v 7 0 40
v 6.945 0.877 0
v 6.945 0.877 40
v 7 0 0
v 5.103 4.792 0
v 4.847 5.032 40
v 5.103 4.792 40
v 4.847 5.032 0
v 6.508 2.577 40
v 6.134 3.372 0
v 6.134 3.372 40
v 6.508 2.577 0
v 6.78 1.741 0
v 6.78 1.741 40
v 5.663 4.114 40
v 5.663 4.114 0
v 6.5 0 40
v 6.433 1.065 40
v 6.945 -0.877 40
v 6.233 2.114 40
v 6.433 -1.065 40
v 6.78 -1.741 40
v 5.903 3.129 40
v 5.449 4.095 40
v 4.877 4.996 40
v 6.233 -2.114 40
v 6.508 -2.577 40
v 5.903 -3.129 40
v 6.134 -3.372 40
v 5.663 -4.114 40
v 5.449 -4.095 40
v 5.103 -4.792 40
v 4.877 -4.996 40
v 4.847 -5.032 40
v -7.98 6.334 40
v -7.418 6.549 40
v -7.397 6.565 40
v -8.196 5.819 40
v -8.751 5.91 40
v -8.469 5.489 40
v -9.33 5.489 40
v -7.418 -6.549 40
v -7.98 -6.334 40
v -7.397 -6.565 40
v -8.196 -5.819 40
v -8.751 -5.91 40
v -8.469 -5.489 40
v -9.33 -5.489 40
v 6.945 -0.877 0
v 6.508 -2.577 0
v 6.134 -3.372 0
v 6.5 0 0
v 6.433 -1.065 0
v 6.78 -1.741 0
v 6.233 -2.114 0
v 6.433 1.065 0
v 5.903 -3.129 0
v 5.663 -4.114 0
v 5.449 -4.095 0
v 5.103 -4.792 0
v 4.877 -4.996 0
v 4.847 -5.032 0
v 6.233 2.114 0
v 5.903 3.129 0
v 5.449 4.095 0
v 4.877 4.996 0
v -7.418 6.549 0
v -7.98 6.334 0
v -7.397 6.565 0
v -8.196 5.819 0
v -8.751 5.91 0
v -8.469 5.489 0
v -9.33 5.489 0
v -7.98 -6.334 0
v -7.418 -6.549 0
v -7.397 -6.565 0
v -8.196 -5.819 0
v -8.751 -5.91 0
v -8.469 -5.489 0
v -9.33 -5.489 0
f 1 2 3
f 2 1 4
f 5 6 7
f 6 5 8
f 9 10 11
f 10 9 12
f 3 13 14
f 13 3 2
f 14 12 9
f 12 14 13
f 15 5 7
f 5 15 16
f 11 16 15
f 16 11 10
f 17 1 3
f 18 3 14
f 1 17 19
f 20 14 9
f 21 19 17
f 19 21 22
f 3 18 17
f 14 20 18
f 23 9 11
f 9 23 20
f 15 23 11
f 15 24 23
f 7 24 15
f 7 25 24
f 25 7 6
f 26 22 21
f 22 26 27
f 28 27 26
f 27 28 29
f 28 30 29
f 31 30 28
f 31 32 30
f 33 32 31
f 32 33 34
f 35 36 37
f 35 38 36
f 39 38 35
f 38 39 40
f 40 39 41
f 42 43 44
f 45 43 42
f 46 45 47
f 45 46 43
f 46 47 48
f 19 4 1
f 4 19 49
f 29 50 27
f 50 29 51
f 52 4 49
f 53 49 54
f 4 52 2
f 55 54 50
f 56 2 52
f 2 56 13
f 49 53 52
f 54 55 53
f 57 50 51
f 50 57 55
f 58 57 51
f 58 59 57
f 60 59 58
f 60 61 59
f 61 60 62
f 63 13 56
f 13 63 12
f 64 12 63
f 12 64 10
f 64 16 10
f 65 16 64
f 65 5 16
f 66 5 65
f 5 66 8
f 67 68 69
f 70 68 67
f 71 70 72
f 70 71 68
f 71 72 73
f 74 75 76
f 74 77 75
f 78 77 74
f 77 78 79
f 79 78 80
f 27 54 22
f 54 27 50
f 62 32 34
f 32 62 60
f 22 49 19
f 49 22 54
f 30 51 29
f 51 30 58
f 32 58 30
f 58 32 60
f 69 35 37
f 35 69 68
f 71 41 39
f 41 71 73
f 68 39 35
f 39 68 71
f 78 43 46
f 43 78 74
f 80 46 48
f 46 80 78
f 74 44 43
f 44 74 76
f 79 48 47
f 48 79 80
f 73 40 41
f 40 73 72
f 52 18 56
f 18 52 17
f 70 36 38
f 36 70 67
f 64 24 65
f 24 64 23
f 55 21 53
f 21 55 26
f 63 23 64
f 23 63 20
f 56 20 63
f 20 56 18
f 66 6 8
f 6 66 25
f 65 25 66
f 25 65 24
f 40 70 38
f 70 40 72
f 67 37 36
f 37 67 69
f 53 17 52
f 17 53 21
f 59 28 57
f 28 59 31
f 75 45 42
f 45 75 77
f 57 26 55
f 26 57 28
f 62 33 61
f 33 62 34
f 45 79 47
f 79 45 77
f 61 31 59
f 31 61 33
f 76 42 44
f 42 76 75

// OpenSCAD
$fn = 50;


difference() {
	union() {
		cylinder(h = 40, r = 7.0000000000);
		translate(v = [-5.0000000000, 0, 0]) {
			cylinder(h = 40, r = 7.0000000000);
		}
	}
	union() {
		cylinder(h = 40, r = 3.2500000000);
		cylinder(h = 40, r = 1.8000000000);
		cylinder(h = 40, r = 1.8000000000);
		cylinder(h = 40, r = 1.8000000000);
		translate(v = [-9.5000000000, 0, 0]) {
			hull() {
				translate(v = [-3.7500000000, 0.0000000000, 0]) {
					cylinder(h = 40, r = 5.5000000000);
				}
				translate(v = [3.7500000000, 0.0000000000, 0]) {
					cylinder(h = 40, r = 5.5000000000);
				}
				translate(v = [-3.7500000000, -0.0000000000, 0]) {
					cylinder(h = 40, r = 5.5000000000);
				}
				translate(v = [3.7500000000, -0.0000000000, 0]) {
					cylinder(h = 40, r = 5.5000000000);
				}
			}
		}
		translate(v = [-2.0000000000, 0, 0.0000000000]) {
			cylinder(h = 40, r = 8.5000000000);
		}
	}
}
